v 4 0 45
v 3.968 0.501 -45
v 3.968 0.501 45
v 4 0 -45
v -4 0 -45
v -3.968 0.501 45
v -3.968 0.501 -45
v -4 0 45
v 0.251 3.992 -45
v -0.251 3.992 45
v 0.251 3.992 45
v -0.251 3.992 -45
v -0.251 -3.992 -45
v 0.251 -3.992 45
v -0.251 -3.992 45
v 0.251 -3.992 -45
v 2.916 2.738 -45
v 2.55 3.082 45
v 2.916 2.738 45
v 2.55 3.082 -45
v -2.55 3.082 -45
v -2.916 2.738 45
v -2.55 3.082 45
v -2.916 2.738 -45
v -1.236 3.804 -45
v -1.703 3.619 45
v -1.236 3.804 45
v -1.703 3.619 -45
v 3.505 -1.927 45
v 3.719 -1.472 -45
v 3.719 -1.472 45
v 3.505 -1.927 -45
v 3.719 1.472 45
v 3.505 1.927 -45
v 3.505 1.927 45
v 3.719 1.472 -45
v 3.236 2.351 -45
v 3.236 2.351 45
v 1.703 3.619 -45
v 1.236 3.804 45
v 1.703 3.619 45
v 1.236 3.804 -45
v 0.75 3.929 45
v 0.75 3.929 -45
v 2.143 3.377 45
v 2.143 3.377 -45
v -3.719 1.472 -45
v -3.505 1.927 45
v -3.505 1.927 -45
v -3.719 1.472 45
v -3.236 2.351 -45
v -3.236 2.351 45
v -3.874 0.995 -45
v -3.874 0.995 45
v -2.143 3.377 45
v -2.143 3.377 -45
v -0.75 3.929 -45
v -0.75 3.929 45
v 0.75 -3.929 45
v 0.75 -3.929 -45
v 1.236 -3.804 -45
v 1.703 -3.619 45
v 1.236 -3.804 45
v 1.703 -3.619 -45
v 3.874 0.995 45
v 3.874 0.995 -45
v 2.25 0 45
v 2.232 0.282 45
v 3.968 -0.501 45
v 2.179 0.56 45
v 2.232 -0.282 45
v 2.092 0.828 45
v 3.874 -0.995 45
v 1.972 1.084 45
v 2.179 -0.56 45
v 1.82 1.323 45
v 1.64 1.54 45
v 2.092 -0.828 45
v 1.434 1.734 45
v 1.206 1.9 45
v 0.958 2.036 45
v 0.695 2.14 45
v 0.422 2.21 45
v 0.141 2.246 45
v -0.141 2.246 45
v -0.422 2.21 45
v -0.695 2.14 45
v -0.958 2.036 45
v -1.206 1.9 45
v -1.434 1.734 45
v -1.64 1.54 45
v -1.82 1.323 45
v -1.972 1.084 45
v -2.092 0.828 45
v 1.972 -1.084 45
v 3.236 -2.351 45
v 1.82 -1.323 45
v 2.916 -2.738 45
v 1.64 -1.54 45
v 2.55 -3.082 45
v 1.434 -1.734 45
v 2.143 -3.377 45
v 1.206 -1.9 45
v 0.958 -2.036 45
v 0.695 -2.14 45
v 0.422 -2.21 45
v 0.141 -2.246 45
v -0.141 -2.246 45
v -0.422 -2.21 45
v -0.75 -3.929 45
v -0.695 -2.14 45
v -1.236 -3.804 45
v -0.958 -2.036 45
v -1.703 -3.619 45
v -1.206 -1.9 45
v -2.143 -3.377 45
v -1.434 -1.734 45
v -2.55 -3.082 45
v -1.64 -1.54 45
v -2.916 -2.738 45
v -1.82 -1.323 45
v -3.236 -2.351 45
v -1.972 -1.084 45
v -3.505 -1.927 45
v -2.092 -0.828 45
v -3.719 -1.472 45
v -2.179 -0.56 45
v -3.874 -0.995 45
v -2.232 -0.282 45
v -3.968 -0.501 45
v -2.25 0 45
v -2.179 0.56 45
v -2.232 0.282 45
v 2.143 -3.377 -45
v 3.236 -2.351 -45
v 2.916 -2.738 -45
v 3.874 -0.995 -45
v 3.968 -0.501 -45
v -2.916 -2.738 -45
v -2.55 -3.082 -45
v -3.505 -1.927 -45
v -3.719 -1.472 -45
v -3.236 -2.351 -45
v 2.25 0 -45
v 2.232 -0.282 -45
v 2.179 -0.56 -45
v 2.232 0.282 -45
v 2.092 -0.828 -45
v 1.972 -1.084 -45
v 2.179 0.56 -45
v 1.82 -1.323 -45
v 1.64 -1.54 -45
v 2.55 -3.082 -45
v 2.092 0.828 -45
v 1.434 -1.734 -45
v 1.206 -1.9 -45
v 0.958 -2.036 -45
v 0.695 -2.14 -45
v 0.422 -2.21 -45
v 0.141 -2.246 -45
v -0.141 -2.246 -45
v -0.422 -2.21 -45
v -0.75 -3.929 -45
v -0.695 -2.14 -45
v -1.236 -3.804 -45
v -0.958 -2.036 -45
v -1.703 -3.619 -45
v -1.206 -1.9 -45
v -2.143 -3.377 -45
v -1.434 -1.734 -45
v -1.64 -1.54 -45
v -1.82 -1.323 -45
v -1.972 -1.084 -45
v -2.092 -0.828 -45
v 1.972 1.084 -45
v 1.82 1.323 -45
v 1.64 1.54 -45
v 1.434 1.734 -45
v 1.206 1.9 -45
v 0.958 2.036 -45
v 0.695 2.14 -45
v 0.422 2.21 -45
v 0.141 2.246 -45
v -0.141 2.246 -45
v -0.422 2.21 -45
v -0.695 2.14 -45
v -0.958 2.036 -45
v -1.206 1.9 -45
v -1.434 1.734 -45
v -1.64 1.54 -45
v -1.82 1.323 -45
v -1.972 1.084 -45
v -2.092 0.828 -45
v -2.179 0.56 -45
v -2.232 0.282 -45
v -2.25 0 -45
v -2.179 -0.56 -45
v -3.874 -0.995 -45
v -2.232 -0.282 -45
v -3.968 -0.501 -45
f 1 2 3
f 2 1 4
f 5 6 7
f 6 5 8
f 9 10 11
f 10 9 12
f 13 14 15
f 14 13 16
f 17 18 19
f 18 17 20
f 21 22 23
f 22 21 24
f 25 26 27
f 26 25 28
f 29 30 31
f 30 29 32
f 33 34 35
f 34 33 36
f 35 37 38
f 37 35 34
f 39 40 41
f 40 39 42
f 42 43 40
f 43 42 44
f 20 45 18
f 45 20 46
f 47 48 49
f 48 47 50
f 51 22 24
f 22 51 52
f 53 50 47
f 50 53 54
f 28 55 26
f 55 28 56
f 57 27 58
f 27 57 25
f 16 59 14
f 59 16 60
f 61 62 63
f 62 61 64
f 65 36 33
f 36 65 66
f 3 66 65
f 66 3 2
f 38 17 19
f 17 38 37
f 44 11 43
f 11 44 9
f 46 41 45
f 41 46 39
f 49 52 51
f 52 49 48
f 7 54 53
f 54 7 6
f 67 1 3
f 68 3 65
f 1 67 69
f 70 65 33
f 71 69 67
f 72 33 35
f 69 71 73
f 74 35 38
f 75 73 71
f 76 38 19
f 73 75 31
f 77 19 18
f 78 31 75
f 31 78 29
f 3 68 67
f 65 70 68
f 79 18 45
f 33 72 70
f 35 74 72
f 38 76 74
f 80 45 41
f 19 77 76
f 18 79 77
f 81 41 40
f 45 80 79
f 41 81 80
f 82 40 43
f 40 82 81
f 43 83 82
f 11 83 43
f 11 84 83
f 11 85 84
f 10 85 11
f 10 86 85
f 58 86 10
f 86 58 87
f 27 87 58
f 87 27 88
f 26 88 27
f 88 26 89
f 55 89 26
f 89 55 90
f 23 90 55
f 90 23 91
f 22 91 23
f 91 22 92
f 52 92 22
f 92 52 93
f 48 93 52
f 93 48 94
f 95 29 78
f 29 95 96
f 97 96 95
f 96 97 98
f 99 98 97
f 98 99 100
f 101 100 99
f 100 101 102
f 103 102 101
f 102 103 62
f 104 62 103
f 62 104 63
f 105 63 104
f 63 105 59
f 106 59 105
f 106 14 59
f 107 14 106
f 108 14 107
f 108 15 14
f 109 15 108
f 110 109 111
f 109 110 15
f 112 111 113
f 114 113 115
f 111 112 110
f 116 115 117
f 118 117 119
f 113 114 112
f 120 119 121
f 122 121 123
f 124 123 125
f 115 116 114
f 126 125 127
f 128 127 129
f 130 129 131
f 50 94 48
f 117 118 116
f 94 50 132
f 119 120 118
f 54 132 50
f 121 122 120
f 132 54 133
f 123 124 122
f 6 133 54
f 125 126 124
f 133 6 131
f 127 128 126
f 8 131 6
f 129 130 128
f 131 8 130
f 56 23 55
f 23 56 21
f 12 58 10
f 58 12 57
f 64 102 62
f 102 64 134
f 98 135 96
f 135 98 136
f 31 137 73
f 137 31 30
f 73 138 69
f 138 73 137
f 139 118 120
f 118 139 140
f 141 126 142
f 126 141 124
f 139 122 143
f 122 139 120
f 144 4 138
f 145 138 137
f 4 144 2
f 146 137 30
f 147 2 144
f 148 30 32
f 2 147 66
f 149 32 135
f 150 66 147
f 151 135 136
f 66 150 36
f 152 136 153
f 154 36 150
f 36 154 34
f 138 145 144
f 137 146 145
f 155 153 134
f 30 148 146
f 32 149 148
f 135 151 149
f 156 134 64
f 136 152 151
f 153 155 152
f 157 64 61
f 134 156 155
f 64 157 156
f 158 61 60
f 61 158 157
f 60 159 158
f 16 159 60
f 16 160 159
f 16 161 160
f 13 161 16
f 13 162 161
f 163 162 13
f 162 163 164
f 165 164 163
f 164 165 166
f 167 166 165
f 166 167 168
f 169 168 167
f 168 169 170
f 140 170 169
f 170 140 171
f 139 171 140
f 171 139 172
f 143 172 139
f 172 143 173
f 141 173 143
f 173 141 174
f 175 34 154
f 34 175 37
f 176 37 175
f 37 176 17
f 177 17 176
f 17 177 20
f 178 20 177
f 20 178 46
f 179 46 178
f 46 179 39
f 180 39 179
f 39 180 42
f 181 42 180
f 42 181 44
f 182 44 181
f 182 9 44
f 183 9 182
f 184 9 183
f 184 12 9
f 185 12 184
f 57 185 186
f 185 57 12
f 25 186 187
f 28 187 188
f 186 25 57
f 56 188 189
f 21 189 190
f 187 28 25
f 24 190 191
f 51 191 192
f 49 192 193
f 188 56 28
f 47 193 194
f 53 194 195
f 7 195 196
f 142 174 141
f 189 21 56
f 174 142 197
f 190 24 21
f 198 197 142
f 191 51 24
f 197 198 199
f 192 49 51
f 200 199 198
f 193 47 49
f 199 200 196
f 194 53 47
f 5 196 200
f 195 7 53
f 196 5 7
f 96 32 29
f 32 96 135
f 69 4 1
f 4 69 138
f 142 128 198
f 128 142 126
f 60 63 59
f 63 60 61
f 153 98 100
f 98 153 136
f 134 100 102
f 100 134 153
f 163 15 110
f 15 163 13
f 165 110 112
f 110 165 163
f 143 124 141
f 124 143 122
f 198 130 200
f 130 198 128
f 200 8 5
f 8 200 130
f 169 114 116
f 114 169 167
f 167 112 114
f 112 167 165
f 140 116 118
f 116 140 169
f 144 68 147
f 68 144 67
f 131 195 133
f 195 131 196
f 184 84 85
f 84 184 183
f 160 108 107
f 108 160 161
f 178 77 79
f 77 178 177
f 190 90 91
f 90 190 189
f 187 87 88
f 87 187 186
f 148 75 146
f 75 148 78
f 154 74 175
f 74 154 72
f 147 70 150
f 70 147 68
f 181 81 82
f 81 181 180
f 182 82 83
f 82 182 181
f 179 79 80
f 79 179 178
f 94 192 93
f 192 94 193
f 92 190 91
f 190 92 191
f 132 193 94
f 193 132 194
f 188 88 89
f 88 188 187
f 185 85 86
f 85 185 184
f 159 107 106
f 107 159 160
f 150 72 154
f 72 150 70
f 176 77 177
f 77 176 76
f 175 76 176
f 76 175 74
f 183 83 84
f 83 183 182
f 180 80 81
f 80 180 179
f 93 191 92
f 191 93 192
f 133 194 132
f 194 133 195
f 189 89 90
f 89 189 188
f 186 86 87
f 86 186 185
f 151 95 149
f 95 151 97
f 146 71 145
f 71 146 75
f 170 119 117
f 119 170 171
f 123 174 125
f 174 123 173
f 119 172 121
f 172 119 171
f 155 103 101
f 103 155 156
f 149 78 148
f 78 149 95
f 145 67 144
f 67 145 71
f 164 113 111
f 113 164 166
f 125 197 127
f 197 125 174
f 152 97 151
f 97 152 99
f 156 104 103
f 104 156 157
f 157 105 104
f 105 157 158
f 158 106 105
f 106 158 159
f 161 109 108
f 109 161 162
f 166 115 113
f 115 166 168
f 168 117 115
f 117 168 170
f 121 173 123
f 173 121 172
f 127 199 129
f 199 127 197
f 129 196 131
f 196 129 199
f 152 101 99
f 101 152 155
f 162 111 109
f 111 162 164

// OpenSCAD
$fn = 50;


difference() {
	union() {
		translate(v = [0, 0, -45.0000000000]) {
			cylinder(h = 90, r = 4.0000000000);
		}
	}
	union() {
		translate(v = [0, 0, -100.0000000000]) {
			cylinder(h = 200, r = 2.2500000000);
		}
	}
}
